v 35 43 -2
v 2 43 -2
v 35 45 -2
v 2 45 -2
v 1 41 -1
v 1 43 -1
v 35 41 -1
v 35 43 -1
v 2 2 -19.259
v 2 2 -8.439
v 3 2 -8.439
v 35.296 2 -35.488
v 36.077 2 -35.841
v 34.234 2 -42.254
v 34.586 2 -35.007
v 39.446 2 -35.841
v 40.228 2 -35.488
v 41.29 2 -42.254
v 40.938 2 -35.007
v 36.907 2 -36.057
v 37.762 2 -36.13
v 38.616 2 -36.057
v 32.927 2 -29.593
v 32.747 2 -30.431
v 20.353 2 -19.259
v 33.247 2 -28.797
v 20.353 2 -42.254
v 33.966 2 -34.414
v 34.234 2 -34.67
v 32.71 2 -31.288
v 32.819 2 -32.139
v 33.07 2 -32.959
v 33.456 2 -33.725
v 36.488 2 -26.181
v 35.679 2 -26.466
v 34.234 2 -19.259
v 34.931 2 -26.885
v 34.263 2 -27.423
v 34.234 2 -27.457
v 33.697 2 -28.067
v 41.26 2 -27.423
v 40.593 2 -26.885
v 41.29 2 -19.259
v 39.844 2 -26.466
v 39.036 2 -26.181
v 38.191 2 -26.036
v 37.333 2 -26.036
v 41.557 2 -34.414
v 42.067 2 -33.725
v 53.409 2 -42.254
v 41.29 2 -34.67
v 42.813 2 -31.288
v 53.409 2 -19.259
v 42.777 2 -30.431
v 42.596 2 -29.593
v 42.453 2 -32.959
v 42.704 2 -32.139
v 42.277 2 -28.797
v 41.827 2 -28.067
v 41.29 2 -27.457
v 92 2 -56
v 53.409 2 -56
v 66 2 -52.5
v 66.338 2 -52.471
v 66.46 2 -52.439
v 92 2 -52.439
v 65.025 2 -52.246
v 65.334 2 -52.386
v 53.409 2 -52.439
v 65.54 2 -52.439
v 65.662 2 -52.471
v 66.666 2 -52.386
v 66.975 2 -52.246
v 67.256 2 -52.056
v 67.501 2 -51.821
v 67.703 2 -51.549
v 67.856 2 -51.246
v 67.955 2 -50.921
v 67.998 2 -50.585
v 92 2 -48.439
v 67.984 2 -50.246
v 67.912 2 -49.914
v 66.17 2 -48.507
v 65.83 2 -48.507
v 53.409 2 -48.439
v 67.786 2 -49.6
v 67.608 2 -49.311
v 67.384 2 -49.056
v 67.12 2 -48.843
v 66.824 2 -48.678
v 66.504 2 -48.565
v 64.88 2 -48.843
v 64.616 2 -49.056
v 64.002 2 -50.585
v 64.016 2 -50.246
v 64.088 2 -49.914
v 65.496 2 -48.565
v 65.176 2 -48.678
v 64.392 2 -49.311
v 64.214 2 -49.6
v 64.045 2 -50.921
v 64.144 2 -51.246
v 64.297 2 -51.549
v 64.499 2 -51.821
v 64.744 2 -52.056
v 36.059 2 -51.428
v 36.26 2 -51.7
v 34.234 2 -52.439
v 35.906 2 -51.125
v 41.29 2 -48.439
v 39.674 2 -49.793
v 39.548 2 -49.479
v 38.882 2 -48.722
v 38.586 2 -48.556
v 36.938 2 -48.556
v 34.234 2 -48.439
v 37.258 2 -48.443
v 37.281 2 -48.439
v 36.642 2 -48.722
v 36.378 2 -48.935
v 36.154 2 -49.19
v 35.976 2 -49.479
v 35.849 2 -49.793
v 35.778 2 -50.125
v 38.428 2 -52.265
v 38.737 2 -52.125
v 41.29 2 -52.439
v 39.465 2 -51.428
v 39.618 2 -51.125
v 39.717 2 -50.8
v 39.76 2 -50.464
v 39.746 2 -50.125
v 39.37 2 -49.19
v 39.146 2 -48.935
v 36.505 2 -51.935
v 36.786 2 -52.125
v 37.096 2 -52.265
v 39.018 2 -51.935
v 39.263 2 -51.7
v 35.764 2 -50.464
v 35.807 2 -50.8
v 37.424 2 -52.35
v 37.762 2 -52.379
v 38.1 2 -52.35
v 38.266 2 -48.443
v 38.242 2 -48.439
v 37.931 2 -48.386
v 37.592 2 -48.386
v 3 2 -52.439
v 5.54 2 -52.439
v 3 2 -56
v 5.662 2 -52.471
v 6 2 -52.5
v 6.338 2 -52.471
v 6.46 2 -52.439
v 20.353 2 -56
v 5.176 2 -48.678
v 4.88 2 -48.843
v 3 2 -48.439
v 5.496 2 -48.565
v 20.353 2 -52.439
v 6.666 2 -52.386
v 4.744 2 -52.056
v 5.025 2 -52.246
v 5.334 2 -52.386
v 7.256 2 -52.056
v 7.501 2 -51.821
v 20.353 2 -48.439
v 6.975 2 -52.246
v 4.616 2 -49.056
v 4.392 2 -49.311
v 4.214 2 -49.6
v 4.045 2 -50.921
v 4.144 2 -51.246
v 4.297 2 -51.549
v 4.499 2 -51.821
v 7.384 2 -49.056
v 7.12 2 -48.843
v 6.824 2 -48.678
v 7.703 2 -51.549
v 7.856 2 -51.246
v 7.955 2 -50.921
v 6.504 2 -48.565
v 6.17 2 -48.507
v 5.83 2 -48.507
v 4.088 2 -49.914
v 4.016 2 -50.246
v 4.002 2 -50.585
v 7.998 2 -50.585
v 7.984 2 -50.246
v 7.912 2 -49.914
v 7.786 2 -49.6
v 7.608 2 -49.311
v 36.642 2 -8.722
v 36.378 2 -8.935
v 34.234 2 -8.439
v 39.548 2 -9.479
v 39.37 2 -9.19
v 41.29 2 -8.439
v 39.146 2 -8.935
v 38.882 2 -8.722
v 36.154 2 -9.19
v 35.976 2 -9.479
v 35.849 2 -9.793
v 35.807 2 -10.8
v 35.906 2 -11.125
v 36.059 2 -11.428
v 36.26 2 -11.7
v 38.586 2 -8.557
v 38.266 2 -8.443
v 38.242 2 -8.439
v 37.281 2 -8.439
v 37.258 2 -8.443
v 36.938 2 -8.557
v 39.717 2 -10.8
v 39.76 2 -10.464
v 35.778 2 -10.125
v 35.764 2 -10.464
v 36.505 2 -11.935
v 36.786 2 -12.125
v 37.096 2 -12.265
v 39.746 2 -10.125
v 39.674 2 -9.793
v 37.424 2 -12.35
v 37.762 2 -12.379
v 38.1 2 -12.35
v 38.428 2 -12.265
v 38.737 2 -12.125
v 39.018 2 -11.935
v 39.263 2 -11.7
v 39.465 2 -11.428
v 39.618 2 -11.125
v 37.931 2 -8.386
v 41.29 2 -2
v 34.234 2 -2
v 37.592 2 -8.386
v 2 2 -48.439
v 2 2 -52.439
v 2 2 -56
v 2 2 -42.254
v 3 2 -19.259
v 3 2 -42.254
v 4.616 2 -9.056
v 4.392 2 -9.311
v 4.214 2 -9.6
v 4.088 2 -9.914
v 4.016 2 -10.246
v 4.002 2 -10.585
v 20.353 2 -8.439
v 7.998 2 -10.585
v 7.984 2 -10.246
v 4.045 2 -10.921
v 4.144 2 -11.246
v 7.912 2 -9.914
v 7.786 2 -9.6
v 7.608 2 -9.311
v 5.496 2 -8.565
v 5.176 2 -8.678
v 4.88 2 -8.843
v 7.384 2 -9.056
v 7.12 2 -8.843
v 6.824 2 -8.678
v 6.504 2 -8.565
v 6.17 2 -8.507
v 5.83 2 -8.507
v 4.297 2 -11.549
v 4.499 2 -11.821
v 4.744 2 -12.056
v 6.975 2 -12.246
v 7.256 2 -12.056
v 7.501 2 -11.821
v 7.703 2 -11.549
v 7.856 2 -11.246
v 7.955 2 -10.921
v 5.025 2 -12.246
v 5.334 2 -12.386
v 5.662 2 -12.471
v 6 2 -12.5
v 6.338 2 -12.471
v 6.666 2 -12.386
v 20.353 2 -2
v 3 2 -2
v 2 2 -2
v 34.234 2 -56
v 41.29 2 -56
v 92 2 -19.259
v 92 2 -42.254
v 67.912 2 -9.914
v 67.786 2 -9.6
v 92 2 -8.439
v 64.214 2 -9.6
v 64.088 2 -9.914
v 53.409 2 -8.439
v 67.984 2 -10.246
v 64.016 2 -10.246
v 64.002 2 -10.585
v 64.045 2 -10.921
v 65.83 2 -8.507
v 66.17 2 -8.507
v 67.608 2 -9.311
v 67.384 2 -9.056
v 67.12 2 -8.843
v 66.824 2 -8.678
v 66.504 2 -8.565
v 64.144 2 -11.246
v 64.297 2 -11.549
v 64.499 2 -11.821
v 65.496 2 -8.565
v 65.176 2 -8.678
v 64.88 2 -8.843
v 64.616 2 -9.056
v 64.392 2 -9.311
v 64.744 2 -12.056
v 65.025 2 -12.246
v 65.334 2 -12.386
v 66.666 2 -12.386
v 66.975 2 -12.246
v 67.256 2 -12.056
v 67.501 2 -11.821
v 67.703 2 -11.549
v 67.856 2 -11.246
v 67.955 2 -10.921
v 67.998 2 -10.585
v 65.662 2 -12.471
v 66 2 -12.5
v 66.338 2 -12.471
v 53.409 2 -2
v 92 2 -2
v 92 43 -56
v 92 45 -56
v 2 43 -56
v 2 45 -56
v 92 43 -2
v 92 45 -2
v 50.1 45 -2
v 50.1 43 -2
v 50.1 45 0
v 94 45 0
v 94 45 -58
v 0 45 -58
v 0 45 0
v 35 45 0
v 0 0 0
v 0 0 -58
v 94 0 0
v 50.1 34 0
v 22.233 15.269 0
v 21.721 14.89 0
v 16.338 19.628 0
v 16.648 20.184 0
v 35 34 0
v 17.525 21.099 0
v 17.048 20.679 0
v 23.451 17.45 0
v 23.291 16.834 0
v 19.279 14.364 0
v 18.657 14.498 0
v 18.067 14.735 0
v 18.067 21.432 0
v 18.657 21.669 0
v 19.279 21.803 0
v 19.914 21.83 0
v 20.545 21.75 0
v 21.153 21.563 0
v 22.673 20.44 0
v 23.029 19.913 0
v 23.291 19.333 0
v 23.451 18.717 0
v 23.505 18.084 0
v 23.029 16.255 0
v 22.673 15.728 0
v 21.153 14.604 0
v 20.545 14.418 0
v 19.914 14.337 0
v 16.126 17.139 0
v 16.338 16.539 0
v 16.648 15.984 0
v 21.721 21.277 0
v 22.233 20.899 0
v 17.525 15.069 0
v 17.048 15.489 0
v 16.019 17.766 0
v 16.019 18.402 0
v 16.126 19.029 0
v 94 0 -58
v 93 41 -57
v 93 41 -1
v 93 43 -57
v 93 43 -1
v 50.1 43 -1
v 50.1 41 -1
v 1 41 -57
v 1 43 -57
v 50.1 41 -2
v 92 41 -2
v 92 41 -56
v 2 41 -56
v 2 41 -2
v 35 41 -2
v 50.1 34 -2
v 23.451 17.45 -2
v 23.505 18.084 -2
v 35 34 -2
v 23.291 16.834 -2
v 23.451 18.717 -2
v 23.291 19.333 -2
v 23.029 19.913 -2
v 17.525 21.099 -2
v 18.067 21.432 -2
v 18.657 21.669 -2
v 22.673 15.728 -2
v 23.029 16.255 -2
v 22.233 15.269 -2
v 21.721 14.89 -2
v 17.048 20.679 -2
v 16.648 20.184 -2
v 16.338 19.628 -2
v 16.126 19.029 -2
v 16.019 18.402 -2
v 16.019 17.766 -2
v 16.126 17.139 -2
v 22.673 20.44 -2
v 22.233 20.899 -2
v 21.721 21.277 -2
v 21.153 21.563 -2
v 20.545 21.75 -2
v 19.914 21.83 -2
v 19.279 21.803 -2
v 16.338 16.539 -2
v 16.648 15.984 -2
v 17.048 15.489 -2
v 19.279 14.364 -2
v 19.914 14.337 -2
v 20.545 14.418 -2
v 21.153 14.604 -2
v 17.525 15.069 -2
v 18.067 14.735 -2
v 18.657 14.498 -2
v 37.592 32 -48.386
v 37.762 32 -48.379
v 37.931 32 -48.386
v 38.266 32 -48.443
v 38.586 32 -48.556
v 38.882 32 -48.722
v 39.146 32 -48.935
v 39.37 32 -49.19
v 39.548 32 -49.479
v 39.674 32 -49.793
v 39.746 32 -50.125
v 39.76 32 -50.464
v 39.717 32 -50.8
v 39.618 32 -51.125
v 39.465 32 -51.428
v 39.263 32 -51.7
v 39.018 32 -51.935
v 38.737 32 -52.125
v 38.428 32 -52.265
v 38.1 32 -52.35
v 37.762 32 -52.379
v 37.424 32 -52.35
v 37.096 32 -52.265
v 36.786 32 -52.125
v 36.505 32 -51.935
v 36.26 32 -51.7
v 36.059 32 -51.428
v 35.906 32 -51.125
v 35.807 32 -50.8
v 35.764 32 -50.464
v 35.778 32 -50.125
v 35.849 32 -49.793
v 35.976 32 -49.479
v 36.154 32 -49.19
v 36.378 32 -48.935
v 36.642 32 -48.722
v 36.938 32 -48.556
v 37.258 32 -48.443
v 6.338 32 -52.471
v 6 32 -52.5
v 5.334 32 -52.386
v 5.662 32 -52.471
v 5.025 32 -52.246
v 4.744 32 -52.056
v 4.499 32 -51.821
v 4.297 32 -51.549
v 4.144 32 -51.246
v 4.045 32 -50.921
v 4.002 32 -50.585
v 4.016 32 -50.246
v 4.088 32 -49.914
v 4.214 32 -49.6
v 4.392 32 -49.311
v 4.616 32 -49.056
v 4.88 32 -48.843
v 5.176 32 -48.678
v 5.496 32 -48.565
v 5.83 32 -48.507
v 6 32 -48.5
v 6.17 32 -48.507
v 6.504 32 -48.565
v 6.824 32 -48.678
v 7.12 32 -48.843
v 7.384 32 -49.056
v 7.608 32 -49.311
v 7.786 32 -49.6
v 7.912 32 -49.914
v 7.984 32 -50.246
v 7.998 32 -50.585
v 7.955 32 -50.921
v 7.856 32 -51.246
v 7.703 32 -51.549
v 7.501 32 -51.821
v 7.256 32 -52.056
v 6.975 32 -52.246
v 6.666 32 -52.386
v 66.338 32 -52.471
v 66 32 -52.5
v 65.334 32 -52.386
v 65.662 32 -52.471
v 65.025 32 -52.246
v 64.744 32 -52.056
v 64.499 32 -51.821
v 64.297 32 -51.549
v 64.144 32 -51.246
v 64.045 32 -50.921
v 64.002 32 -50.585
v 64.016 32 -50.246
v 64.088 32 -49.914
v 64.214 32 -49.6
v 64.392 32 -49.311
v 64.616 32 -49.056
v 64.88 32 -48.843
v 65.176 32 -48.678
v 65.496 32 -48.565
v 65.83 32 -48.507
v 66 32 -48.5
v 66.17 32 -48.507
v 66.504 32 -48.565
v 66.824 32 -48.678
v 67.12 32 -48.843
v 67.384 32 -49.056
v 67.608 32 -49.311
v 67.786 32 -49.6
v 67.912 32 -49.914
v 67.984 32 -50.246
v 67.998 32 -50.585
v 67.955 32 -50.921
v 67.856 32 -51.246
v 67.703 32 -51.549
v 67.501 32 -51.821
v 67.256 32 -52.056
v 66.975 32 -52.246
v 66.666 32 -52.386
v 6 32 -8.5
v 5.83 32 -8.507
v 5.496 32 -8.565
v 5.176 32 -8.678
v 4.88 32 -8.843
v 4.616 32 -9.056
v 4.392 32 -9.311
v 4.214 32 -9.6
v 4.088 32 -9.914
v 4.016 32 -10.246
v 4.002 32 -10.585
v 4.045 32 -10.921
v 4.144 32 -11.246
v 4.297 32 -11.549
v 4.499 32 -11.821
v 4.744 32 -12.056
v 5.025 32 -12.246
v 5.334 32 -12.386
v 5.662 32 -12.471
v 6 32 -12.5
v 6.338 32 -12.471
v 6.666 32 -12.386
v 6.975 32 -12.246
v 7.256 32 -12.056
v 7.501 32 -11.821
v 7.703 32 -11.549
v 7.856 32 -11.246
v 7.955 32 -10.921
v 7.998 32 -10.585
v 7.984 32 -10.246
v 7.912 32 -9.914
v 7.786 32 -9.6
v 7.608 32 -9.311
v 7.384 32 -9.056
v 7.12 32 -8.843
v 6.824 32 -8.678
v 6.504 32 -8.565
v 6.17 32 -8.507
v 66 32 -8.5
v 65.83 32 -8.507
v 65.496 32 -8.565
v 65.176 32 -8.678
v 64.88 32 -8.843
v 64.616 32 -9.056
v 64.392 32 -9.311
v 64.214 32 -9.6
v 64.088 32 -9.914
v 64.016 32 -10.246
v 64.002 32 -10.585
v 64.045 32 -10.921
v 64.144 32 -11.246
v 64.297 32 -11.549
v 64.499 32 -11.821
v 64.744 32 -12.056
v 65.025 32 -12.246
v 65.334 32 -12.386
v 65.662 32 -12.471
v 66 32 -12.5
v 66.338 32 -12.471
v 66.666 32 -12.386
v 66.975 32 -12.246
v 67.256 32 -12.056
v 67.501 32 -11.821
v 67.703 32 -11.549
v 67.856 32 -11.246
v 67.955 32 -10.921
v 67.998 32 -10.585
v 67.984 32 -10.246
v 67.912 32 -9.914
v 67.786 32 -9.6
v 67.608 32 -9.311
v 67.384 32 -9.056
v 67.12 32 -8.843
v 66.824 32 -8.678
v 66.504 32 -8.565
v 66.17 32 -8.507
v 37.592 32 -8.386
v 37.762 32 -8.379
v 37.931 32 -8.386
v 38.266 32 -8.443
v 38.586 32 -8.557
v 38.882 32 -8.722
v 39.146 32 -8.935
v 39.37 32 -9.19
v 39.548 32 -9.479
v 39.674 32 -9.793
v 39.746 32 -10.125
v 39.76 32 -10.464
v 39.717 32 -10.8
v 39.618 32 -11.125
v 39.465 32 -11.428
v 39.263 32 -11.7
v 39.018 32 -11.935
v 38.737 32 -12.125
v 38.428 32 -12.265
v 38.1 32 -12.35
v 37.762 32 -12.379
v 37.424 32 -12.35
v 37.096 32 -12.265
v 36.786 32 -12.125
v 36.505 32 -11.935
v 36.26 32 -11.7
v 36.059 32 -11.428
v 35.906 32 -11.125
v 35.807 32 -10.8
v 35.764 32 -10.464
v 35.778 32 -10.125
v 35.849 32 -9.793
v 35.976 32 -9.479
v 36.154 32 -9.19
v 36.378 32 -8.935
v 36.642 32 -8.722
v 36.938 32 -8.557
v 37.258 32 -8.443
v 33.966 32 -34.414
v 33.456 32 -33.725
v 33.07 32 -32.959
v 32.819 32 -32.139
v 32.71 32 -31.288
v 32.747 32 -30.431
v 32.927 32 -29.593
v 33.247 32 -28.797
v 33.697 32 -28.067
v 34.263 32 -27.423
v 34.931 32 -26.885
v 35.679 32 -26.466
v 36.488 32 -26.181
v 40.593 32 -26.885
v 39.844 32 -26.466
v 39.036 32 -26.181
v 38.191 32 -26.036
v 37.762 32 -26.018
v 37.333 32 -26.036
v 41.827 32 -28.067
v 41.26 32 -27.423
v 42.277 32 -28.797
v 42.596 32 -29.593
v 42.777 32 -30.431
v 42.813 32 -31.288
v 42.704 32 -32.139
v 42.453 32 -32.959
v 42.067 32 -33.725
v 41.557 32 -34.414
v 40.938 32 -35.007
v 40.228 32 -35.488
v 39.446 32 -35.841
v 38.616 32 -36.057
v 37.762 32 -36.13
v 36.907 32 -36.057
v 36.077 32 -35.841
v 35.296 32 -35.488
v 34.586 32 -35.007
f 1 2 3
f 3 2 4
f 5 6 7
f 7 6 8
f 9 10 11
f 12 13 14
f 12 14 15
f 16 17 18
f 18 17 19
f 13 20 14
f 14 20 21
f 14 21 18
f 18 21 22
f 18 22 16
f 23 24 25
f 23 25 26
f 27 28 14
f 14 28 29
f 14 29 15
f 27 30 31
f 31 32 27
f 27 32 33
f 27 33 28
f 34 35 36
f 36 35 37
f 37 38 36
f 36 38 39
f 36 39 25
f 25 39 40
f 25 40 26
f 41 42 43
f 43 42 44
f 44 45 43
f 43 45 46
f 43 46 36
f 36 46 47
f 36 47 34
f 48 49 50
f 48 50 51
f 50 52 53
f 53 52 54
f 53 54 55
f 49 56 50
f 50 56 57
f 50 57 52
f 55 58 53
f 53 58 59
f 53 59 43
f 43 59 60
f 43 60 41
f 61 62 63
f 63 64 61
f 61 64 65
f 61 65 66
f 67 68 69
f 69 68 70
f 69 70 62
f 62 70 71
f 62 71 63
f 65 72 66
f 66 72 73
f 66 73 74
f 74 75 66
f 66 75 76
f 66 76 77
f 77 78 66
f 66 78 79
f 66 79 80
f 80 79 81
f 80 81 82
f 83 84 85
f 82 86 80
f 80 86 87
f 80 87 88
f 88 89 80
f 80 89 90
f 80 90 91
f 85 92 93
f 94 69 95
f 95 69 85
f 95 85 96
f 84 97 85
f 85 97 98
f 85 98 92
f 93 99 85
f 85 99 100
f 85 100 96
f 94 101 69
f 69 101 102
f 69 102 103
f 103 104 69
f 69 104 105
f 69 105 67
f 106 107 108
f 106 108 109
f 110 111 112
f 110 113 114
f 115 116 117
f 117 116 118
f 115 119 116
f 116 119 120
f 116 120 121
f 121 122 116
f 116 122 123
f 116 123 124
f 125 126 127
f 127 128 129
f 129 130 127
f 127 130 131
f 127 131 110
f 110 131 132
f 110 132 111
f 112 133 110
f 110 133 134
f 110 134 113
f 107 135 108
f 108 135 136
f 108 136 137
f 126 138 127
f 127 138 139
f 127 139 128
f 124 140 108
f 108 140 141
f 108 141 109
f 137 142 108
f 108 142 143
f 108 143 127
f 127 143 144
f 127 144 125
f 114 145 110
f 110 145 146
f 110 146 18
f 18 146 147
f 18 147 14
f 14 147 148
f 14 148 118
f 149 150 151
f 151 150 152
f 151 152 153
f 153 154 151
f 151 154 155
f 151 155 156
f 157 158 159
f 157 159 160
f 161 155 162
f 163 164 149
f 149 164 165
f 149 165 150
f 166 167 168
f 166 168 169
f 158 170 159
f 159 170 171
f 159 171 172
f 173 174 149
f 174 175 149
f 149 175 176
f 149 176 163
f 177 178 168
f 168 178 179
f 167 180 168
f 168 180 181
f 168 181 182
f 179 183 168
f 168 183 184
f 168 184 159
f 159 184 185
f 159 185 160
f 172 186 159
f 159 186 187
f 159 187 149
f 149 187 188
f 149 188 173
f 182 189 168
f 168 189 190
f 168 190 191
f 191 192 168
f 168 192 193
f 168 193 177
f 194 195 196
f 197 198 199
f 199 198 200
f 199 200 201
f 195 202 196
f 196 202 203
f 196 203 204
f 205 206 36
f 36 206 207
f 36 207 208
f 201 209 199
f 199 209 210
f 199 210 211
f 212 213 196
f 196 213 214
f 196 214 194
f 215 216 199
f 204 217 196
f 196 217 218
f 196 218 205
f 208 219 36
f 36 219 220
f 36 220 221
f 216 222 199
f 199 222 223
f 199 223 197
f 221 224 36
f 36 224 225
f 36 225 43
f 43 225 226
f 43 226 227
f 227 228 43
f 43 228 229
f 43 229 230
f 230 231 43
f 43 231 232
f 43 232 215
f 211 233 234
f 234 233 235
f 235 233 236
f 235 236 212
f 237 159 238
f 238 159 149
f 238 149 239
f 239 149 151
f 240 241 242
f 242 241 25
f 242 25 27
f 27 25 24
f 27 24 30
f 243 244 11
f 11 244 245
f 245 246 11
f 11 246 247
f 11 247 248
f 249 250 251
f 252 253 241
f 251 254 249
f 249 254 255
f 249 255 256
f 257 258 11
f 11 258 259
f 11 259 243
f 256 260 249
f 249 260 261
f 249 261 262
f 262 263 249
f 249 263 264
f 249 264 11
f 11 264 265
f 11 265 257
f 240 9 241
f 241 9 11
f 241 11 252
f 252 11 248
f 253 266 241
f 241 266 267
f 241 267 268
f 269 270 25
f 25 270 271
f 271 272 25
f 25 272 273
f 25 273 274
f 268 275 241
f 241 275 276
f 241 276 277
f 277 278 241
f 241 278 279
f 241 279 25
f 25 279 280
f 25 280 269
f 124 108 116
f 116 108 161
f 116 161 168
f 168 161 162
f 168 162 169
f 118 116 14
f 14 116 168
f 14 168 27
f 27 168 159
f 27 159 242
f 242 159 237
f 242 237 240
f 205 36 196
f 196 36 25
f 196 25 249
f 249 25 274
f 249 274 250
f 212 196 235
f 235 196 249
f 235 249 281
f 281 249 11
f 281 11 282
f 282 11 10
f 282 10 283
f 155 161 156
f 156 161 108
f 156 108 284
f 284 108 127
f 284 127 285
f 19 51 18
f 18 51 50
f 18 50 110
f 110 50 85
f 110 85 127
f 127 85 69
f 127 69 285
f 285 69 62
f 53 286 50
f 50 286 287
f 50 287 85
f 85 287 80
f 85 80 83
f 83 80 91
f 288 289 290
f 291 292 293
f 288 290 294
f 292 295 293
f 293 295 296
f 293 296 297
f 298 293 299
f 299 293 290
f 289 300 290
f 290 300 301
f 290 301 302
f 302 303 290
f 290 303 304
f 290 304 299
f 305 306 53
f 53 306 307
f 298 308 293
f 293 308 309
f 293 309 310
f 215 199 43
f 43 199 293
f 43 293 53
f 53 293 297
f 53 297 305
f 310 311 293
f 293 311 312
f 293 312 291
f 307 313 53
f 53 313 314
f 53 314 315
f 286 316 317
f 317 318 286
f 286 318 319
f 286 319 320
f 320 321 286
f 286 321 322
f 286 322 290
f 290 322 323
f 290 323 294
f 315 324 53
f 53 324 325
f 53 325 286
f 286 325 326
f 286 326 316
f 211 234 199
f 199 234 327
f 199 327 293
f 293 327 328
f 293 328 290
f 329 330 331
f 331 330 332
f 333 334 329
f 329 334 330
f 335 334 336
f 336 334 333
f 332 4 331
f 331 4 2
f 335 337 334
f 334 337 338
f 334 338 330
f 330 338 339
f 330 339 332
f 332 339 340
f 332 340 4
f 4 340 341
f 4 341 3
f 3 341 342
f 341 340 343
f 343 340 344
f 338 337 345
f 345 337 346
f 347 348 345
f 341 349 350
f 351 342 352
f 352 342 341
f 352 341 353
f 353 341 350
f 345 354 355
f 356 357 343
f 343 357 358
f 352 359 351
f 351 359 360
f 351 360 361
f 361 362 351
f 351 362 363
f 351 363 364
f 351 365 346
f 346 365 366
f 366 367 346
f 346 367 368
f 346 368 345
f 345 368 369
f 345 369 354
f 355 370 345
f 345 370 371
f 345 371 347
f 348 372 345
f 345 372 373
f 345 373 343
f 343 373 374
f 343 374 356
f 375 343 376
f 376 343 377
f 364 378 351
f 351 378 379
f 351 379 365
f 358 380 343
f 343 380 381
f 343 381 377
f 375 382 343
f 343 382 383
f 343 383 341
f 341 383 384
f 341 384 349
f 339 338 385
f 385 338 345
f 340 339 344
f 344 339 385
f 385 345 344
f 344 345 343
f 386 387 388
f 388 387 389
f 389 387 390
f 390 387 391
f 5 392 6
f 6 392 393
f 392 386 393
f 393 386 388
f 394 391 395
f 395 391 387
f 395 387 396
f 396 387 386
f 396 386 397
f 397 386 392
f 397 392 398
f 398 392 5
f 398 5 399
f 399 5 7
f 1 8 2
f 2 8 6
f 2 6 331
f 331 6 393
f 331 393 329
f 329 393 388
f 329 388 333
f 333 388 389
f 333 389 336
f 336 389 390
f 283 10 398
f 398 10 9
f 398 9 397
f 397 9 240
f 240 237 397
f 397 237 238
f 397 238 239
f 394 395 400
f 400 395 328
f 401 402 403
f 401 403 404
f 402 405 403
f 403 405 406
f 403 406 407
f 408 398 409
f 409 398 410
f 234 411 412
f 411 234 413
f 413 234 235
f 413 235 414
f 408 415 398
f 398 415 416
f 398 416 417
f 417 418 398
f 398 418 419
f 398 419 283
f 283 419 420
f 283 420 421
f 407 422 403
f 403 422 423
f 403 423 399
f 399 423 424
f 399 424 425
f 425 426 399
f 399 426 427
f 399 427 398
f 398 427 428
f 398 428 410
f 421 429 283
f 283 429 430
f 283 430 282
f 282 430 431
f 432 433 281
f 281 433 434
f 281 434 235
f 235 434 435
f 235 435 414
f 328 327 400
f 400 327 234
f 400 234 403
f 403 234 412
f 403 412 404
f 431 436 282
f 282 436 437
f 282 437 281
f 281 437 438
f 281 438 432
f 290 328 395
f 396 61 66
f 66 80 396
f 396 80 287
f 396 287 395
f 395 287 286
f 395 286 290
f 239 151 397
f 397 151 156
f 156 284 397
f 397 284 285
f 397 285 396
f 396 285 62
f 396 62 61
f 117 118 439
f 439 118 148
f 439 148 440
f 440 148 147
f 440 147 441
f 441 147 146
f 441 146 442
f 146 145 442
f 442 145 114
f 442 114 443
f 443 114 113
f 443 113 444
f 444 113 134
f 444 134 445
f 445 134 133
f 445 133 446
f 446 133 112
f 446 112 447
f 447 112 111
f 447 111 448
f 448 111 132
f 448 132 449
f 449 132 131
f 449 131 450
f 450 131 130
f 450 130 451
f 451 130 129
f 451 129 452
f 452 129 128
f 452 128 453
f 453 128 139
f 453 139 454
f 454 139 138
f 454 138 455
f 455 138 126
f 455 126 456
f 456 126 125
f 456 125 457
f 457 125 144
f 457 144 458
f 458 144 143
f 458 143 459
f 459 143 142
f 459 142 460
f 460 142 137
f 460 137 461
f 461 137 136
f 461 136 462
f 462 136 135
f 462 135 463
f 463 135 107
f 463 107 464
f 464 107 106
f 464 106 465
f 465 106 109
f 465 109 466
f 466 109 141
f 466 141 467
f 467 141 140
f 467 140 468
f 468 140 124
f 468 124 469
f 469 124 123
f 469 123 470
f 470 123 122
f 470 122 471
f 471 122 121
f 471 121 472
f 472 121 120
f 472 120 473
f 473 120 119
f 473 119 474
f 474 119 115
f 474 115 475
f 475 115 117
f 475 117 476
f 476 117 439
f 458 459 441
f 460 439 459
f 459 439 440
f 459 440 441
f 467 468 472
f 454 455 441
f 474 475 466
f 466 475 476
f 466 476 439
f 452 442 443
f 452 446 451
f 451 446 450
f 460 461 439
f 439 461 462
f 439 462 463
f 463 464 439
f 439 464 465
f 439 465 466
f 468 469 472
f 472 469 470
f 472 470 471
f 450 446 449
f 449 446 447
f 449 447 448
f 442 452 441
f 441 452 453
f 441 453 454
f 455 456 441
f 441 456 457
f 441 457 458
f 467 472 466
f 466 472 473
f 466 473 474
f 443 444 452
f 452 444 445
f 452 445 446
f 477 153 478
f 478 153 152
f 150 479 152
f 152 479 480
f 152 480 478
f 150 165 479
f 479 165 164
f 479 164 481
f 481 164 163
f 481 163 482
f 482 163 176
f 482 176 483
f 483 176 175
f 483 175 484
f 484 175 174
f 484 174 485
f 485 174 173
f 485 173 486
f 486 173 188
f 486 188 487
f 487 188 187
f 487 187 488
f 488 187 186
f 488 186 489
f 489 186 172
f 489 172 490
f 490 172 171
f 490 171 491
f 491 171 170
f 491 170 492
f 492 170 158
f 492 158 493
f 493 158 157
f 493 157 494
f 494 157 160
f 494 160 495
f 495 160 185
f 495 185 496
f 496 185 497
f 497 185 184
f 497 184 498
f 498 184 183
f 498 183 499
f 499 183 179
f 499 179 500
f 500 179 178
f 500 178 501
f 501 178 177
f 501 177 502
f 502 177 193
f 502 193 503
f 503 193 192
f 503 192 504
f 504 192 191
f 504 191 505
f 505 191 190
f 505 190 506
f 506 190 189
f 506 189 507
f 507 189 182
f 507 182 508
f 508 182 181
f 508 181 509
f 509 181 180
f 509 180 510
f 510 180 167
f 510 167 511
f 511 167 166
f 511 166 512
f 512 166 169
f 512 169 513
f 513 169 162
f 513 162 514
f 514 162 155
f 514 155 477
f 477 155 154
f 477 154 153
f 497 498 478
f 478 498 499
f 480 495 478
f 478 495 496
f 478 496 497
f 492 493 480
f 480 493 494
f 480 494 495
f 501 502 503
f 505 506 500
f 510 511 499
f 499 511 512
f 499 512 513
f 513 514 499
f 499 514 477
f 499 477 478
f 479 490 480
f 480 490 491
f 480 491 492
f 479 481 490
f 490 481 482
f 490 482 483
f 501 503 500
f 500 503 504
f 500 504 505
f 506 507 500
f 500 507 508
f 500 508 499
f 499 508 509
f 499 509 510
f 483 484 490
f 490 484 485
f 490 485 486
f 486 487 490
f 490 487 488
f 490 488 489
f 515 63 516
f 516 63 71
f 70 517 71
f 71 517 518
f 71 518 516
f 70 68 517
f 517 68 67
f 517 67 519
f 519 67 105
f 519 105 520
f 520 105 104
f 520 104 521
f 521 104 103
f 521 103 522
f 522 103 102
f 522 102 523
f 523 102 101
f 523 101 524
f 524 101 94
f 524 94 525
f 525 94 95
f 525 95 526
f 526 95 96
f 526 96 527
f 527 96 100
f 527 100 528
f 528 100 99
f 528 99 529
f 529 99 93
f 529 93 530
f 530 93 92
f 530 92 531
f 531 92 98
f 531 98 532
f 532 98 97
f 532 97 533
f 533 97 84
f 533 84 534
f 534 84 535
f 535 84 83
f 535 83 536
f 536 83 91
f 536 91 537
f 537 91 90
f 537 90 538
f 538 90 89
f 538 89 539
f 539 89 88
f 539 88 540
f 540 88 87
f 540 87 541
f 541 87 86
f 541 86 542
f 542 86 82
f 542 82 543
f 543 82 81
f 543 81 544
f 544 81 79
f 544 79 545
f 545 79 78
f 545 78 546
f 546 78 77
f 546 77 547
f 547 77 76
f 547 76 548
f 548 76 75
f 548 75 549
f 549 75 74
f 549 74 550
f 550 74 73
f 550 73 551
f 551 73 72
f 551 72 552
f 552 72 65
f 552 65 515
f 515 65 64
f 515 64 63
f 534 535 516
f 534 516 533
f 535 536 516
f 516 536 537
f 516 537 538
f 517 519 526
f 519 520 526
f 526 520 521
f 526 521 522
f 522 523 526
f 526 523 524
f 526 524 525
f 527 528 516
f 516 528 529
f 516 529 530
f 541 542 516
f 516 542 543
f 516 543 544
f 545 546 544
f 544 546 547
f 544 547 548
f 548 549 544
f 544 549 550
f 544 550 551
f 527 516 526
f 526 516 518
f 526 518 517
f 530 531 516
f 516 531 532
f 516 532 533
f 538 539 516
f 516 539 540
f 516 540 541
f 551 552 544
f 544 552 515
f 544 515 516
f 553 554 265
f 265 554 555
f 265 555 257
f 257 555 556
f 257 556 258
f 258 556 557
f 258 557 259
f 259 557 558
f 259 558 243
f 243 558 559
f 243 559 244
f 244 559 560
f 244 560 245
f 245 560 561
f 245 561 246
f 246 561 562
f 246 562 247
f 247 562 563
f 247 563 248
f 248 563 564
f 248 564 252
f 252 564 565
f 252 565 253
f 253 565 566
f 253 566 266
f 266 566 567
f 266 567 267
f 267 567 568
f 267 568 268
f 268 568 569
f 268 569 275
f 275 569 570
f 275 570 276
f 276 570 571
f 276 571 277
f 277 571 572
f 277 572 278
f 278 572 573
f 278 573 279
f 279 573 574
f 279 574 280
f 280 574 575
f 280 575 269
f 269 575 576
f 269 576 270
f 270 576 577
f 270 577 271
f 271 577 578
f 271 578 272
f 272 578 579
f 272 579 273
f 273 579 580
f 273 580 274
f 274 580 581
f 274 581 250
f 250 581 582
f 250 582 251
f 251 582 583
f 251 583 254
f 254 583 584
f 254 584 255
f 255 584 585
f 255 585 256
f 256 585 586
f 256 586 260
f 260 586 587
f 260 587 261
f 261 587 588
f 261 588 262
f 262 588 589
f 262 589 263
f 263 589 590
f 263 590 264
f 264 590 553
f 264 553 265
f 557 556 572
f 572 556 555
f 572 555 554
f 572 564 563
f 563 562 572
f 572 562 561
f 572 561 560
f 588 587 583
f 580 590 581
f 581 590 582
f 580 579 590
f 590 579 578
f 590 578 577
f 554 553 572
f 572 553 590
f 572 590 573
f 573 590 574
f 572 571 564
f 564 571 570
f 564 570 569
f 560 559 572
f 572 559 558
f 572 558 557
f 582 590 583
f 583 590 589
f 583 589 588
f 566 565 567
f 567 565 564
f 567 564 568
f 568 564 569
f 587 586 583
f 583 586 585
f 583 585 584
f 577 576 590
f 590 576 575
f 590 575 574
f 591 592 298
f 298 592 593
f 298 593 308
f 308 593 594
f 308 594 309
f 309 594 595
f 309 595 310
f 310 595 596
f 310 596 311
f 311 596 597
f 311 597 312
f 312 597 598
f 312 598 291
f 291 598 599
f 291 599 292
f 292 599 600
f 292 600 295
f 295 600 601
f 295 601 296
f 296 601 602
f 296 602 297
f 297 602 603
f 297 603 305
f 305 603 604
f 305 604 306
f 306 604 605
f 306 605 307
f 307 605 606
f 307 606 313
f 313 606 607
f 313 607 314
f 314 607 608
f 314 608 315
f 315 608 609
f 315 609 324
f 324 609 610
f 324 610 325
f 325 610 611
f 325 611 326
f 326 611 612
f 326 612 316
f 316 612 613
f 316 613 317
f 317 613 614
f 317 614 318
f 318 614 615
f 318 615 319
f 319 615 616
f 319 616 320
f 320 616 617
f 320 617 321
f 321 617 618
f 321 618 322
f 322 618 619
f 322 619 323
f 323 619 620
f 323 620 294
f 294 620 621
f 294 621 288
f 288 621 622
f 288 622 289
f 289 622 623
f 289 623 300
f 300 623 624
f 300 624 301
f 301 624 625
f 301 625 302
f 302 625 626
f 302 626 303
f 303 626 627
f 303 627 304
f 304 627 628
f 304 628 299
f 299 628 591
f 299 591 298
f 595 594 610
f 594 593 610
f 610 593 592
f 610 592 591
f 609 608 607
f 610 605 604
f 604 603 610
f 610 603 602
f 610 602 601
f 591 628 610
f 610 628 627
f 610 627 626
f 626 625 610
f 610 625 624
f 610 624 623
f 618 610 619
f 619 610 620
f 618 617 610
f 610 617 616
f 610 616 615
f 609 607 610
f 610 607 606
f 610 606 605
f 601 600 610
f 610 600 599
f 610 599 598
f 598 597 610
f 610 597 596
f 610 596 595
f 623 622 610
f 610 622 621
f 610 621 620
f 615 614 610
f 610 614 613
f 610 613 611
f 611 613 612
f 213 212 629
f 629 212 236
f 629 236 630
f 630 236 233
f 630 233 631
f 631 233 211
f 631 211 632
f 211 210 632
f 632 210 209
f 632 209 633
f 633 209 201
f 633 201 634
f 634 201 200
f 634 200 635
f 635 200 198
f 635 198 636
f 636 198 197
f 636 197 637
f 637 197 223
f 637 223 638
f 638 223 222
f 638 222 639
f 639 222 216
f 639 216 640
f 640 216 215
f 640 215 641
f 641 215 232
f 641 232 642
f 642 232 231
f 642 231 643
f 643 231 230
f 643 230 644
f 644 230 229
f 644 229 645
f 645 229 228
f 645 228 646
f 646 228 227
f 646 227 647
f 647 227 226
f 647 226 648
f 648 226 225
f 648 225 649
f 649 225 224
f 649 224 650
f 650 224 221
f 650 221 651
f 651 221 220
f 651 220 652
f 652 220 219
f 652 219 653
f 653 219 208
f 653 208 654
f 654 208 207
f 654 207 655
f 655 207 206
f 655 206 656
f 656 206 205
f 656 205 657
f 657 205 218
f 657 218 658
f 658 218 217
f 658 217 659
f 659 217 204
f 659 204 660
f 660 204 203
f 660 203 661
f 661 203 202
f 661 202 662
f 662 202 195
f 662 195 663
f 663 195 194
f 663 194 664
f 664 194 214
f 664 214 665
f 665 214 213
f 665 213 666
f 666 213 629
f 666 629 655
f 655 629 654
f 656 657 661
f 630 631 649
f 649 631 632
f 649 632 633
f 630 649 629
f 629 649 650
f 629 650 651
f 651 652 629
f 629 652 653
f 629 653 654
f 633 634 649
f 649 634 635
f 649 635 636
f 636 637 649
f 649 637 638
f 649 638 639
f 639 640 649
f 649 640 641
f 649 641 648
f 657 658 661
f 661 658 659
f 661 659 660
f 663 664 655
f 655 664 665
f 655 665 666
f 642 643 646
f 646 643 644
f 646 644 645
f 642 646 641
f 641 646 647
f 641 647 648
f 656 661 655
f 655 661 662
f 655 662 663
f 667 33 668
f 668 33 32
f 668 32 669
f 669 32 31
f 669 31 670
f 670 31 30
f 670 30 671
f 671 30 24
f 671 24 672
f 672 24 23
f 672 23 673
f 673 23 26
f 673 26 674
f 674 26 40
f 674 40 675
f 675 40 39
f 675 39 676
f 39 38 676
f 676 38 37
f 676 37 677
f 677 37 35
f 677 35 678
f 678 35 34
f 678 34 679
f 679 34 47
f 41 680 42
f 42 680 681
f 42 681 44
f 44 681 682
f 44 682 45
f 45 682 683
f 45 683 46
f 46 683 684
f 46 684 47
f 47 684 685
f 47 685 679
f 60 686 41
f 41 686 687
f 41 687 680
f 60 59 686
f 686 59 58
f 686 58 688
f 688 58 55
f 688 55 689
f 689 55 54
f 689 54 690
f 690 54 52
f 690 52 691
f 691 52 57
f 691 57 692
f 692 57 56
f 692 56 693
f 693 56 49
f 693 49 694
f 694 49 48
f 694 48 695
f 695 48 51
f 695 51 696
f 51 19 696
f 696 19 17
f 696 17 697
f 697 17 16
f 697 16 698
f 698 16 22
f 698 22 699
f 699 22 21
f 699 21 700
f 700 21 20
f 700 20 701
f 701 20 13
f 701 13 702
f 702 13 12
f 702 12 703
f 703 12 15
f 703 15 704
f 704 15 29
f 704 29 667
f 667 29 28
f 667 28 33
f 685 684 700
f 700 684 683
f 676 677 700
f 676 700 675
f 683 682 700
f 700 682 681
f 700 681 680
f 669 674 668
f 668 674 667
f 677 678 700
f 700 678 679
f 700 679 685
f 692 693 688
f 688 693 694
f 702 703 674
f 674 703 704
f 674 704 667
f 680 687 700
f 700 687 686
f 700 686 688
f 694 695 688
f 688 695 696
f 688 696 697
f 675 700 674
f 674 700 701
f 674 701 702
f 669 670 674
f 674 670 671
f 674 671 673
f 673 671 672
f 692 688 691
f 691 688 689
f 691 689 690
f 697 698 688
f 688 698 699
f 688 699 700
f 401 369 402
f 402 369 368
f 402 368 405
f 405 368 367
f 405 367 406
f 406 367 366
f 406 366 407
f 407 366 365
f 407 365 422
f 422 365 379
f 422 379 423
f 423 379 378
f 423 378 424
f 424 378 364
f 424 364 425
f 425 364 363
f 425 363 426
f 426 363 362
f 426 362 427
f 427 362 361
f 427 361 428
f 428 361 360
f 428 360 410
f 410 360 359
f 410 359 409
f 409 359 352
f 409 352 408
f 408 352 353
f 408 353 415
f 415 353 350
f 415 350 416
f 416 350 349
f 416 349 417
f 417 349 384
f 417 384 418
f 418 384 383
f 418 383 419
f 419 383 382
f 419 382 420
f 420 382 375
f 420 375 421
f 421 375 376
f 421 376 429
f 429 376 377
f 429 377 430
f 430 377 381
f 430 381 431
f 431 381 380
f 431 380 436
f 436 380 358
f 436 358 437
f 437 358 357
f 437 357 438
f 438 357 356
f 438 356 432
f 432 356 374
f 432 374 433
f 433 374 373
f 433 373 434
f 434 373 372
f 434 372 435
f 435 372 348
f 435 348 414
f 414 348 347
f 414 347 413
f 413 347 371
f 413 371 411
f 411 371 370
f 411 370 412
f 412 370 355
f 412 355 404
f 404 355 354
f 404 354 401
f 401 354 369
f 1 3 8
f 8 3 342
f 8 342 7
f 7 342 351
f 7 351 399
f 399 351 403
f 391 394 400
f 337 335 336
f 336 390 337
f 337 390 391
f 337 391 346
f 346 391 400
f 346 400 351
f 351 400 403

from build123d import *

# Parameters (mm, degrees)
SKETCH1_W           = 94
SKETCH1_H           = 58
BOSS_EXTRUDE1_DEPTH = 45
SKETCH2_W           = 90
SKETCH2_H           = 54
CUT_EXTRUDE1_DEPTH  = 43
SKETCH6_W           = 92
SKETCH6_H           = 56
CUT_EXTRUDE2_DEPTH  = 2
SKETCH10_R          = 2
SKETCH10_R_2        = 5.056057686
BOSS_EXTRUDE2_DEPTH = 30
SKETCH11_R          = 3.75
CUT_EXTRUDE3_DEPTH  = 2
SKETCH12_W          = 15.1
SKETCH12_H          = 2
CUT_EXTRUDE4_DEPTH  = 11


with BuildPart() as part:
    # Sketch1 → Boss-Extrude1 (new body)
    with BuildSketch(Plane(origin=(0, 0, 0), x_dir=(1, 0, 0), z_dir=(0, 1, 0))):
        with Locations((47, 29)):
            Rectangle(SKETCH1_W, SKETCH1_H)
    extrude(amount=BOSS_EXTRUDE1_DEPTH)

    # Sketch2 → Cut-Extrude1 (cut)
    with BuildSketch(Plane(origin=(0, 45, 0), x_dir=(1, 0, 0), z_dir=(0, 1, 0))):
        with Locations((47, 29)):
            Rectangle(SKETCH2_W, SKETCH2_H)
    extrude(amount=-CUT_EXTRUDE1_DEPTH, mode=Mode.SUBTRACT)

    # Sketch6 → Cut-Extrude2 (cut)
    with BuildSketch(Plane(origin=(0, 43, 0), x_dir=(-1, 0, 0), z_dir=(0, -1, 0))):
        with Locations((-47, 29)):
            Rectangle(SKETCH6_W, SKETCH6_H)
    extrude(amount=CUT_EXTRUDE2_DEPTH, mode=Mode.SUBTRACT)

    # Sketch10 → Boss-Extrude2 (add)
    with BuildSketch(Plane(origin=(0, 2, 0), x_dir=(1, 0, 0), z_dir=(0, 1, 0))):
        with Locations(Location((6, 50.5, 0), (0, 0, 90))):
            Circle(SKETCH10_R)
        with Locations(Location((66, 50.5, 0), (0, 0, 90))):
            Circle(SKETCH10_R)
        with Locations(Location((6, 10.5, 0), (0, 0, 90))):
            Circle(SKETCH10_R)
        with Locations(Location((66, 10.5, 0), (0, 0, 90))):
            Circle(SKETCH10_R)
        with Locations(Location((37.761829649, 50.378957989, 0), (0, 0, 90))):
            Circle(SKETCH10_R)
        with Locations(Location((37.761829649, 10.378957989, 0), (0, 0, 90))):
            Circle(SKETCH10_R)
        with Locations(Location((37.761829649, 31.073572918, 0), (0, 0, 90))):
            Circle(SKETCH10_R_2)
    extrude(amount=BOSS_EXTRUDE2_DEPTH)

    # Sketch11 → Cut-Extrude3 (cut)
    with BuildSketch(Plane.XY):
        with Locations((19.755158367, 18.08373087)):
            Circle(SKETCH11_R)
    extrude(amount=-CUT_EXTRUDE3_DEPTH, mode=Mode.SUBTRACT)

    # Sketch12 → Cut-Extrude4 (cut)
    with BuildSketch(Plane(origin=(0, 45, 0), x_dir=(1, 0, 0), z_dir=(0, 1, 0))):
        with Locations((42.55, 1)):
            Rectangle(SKETCH12_W, SKETCH12_H)
    extrude(amount=-CUT_EXTRUDE4_DEPTH, mode=Mode.SUBTRACT)


solid = part.part
